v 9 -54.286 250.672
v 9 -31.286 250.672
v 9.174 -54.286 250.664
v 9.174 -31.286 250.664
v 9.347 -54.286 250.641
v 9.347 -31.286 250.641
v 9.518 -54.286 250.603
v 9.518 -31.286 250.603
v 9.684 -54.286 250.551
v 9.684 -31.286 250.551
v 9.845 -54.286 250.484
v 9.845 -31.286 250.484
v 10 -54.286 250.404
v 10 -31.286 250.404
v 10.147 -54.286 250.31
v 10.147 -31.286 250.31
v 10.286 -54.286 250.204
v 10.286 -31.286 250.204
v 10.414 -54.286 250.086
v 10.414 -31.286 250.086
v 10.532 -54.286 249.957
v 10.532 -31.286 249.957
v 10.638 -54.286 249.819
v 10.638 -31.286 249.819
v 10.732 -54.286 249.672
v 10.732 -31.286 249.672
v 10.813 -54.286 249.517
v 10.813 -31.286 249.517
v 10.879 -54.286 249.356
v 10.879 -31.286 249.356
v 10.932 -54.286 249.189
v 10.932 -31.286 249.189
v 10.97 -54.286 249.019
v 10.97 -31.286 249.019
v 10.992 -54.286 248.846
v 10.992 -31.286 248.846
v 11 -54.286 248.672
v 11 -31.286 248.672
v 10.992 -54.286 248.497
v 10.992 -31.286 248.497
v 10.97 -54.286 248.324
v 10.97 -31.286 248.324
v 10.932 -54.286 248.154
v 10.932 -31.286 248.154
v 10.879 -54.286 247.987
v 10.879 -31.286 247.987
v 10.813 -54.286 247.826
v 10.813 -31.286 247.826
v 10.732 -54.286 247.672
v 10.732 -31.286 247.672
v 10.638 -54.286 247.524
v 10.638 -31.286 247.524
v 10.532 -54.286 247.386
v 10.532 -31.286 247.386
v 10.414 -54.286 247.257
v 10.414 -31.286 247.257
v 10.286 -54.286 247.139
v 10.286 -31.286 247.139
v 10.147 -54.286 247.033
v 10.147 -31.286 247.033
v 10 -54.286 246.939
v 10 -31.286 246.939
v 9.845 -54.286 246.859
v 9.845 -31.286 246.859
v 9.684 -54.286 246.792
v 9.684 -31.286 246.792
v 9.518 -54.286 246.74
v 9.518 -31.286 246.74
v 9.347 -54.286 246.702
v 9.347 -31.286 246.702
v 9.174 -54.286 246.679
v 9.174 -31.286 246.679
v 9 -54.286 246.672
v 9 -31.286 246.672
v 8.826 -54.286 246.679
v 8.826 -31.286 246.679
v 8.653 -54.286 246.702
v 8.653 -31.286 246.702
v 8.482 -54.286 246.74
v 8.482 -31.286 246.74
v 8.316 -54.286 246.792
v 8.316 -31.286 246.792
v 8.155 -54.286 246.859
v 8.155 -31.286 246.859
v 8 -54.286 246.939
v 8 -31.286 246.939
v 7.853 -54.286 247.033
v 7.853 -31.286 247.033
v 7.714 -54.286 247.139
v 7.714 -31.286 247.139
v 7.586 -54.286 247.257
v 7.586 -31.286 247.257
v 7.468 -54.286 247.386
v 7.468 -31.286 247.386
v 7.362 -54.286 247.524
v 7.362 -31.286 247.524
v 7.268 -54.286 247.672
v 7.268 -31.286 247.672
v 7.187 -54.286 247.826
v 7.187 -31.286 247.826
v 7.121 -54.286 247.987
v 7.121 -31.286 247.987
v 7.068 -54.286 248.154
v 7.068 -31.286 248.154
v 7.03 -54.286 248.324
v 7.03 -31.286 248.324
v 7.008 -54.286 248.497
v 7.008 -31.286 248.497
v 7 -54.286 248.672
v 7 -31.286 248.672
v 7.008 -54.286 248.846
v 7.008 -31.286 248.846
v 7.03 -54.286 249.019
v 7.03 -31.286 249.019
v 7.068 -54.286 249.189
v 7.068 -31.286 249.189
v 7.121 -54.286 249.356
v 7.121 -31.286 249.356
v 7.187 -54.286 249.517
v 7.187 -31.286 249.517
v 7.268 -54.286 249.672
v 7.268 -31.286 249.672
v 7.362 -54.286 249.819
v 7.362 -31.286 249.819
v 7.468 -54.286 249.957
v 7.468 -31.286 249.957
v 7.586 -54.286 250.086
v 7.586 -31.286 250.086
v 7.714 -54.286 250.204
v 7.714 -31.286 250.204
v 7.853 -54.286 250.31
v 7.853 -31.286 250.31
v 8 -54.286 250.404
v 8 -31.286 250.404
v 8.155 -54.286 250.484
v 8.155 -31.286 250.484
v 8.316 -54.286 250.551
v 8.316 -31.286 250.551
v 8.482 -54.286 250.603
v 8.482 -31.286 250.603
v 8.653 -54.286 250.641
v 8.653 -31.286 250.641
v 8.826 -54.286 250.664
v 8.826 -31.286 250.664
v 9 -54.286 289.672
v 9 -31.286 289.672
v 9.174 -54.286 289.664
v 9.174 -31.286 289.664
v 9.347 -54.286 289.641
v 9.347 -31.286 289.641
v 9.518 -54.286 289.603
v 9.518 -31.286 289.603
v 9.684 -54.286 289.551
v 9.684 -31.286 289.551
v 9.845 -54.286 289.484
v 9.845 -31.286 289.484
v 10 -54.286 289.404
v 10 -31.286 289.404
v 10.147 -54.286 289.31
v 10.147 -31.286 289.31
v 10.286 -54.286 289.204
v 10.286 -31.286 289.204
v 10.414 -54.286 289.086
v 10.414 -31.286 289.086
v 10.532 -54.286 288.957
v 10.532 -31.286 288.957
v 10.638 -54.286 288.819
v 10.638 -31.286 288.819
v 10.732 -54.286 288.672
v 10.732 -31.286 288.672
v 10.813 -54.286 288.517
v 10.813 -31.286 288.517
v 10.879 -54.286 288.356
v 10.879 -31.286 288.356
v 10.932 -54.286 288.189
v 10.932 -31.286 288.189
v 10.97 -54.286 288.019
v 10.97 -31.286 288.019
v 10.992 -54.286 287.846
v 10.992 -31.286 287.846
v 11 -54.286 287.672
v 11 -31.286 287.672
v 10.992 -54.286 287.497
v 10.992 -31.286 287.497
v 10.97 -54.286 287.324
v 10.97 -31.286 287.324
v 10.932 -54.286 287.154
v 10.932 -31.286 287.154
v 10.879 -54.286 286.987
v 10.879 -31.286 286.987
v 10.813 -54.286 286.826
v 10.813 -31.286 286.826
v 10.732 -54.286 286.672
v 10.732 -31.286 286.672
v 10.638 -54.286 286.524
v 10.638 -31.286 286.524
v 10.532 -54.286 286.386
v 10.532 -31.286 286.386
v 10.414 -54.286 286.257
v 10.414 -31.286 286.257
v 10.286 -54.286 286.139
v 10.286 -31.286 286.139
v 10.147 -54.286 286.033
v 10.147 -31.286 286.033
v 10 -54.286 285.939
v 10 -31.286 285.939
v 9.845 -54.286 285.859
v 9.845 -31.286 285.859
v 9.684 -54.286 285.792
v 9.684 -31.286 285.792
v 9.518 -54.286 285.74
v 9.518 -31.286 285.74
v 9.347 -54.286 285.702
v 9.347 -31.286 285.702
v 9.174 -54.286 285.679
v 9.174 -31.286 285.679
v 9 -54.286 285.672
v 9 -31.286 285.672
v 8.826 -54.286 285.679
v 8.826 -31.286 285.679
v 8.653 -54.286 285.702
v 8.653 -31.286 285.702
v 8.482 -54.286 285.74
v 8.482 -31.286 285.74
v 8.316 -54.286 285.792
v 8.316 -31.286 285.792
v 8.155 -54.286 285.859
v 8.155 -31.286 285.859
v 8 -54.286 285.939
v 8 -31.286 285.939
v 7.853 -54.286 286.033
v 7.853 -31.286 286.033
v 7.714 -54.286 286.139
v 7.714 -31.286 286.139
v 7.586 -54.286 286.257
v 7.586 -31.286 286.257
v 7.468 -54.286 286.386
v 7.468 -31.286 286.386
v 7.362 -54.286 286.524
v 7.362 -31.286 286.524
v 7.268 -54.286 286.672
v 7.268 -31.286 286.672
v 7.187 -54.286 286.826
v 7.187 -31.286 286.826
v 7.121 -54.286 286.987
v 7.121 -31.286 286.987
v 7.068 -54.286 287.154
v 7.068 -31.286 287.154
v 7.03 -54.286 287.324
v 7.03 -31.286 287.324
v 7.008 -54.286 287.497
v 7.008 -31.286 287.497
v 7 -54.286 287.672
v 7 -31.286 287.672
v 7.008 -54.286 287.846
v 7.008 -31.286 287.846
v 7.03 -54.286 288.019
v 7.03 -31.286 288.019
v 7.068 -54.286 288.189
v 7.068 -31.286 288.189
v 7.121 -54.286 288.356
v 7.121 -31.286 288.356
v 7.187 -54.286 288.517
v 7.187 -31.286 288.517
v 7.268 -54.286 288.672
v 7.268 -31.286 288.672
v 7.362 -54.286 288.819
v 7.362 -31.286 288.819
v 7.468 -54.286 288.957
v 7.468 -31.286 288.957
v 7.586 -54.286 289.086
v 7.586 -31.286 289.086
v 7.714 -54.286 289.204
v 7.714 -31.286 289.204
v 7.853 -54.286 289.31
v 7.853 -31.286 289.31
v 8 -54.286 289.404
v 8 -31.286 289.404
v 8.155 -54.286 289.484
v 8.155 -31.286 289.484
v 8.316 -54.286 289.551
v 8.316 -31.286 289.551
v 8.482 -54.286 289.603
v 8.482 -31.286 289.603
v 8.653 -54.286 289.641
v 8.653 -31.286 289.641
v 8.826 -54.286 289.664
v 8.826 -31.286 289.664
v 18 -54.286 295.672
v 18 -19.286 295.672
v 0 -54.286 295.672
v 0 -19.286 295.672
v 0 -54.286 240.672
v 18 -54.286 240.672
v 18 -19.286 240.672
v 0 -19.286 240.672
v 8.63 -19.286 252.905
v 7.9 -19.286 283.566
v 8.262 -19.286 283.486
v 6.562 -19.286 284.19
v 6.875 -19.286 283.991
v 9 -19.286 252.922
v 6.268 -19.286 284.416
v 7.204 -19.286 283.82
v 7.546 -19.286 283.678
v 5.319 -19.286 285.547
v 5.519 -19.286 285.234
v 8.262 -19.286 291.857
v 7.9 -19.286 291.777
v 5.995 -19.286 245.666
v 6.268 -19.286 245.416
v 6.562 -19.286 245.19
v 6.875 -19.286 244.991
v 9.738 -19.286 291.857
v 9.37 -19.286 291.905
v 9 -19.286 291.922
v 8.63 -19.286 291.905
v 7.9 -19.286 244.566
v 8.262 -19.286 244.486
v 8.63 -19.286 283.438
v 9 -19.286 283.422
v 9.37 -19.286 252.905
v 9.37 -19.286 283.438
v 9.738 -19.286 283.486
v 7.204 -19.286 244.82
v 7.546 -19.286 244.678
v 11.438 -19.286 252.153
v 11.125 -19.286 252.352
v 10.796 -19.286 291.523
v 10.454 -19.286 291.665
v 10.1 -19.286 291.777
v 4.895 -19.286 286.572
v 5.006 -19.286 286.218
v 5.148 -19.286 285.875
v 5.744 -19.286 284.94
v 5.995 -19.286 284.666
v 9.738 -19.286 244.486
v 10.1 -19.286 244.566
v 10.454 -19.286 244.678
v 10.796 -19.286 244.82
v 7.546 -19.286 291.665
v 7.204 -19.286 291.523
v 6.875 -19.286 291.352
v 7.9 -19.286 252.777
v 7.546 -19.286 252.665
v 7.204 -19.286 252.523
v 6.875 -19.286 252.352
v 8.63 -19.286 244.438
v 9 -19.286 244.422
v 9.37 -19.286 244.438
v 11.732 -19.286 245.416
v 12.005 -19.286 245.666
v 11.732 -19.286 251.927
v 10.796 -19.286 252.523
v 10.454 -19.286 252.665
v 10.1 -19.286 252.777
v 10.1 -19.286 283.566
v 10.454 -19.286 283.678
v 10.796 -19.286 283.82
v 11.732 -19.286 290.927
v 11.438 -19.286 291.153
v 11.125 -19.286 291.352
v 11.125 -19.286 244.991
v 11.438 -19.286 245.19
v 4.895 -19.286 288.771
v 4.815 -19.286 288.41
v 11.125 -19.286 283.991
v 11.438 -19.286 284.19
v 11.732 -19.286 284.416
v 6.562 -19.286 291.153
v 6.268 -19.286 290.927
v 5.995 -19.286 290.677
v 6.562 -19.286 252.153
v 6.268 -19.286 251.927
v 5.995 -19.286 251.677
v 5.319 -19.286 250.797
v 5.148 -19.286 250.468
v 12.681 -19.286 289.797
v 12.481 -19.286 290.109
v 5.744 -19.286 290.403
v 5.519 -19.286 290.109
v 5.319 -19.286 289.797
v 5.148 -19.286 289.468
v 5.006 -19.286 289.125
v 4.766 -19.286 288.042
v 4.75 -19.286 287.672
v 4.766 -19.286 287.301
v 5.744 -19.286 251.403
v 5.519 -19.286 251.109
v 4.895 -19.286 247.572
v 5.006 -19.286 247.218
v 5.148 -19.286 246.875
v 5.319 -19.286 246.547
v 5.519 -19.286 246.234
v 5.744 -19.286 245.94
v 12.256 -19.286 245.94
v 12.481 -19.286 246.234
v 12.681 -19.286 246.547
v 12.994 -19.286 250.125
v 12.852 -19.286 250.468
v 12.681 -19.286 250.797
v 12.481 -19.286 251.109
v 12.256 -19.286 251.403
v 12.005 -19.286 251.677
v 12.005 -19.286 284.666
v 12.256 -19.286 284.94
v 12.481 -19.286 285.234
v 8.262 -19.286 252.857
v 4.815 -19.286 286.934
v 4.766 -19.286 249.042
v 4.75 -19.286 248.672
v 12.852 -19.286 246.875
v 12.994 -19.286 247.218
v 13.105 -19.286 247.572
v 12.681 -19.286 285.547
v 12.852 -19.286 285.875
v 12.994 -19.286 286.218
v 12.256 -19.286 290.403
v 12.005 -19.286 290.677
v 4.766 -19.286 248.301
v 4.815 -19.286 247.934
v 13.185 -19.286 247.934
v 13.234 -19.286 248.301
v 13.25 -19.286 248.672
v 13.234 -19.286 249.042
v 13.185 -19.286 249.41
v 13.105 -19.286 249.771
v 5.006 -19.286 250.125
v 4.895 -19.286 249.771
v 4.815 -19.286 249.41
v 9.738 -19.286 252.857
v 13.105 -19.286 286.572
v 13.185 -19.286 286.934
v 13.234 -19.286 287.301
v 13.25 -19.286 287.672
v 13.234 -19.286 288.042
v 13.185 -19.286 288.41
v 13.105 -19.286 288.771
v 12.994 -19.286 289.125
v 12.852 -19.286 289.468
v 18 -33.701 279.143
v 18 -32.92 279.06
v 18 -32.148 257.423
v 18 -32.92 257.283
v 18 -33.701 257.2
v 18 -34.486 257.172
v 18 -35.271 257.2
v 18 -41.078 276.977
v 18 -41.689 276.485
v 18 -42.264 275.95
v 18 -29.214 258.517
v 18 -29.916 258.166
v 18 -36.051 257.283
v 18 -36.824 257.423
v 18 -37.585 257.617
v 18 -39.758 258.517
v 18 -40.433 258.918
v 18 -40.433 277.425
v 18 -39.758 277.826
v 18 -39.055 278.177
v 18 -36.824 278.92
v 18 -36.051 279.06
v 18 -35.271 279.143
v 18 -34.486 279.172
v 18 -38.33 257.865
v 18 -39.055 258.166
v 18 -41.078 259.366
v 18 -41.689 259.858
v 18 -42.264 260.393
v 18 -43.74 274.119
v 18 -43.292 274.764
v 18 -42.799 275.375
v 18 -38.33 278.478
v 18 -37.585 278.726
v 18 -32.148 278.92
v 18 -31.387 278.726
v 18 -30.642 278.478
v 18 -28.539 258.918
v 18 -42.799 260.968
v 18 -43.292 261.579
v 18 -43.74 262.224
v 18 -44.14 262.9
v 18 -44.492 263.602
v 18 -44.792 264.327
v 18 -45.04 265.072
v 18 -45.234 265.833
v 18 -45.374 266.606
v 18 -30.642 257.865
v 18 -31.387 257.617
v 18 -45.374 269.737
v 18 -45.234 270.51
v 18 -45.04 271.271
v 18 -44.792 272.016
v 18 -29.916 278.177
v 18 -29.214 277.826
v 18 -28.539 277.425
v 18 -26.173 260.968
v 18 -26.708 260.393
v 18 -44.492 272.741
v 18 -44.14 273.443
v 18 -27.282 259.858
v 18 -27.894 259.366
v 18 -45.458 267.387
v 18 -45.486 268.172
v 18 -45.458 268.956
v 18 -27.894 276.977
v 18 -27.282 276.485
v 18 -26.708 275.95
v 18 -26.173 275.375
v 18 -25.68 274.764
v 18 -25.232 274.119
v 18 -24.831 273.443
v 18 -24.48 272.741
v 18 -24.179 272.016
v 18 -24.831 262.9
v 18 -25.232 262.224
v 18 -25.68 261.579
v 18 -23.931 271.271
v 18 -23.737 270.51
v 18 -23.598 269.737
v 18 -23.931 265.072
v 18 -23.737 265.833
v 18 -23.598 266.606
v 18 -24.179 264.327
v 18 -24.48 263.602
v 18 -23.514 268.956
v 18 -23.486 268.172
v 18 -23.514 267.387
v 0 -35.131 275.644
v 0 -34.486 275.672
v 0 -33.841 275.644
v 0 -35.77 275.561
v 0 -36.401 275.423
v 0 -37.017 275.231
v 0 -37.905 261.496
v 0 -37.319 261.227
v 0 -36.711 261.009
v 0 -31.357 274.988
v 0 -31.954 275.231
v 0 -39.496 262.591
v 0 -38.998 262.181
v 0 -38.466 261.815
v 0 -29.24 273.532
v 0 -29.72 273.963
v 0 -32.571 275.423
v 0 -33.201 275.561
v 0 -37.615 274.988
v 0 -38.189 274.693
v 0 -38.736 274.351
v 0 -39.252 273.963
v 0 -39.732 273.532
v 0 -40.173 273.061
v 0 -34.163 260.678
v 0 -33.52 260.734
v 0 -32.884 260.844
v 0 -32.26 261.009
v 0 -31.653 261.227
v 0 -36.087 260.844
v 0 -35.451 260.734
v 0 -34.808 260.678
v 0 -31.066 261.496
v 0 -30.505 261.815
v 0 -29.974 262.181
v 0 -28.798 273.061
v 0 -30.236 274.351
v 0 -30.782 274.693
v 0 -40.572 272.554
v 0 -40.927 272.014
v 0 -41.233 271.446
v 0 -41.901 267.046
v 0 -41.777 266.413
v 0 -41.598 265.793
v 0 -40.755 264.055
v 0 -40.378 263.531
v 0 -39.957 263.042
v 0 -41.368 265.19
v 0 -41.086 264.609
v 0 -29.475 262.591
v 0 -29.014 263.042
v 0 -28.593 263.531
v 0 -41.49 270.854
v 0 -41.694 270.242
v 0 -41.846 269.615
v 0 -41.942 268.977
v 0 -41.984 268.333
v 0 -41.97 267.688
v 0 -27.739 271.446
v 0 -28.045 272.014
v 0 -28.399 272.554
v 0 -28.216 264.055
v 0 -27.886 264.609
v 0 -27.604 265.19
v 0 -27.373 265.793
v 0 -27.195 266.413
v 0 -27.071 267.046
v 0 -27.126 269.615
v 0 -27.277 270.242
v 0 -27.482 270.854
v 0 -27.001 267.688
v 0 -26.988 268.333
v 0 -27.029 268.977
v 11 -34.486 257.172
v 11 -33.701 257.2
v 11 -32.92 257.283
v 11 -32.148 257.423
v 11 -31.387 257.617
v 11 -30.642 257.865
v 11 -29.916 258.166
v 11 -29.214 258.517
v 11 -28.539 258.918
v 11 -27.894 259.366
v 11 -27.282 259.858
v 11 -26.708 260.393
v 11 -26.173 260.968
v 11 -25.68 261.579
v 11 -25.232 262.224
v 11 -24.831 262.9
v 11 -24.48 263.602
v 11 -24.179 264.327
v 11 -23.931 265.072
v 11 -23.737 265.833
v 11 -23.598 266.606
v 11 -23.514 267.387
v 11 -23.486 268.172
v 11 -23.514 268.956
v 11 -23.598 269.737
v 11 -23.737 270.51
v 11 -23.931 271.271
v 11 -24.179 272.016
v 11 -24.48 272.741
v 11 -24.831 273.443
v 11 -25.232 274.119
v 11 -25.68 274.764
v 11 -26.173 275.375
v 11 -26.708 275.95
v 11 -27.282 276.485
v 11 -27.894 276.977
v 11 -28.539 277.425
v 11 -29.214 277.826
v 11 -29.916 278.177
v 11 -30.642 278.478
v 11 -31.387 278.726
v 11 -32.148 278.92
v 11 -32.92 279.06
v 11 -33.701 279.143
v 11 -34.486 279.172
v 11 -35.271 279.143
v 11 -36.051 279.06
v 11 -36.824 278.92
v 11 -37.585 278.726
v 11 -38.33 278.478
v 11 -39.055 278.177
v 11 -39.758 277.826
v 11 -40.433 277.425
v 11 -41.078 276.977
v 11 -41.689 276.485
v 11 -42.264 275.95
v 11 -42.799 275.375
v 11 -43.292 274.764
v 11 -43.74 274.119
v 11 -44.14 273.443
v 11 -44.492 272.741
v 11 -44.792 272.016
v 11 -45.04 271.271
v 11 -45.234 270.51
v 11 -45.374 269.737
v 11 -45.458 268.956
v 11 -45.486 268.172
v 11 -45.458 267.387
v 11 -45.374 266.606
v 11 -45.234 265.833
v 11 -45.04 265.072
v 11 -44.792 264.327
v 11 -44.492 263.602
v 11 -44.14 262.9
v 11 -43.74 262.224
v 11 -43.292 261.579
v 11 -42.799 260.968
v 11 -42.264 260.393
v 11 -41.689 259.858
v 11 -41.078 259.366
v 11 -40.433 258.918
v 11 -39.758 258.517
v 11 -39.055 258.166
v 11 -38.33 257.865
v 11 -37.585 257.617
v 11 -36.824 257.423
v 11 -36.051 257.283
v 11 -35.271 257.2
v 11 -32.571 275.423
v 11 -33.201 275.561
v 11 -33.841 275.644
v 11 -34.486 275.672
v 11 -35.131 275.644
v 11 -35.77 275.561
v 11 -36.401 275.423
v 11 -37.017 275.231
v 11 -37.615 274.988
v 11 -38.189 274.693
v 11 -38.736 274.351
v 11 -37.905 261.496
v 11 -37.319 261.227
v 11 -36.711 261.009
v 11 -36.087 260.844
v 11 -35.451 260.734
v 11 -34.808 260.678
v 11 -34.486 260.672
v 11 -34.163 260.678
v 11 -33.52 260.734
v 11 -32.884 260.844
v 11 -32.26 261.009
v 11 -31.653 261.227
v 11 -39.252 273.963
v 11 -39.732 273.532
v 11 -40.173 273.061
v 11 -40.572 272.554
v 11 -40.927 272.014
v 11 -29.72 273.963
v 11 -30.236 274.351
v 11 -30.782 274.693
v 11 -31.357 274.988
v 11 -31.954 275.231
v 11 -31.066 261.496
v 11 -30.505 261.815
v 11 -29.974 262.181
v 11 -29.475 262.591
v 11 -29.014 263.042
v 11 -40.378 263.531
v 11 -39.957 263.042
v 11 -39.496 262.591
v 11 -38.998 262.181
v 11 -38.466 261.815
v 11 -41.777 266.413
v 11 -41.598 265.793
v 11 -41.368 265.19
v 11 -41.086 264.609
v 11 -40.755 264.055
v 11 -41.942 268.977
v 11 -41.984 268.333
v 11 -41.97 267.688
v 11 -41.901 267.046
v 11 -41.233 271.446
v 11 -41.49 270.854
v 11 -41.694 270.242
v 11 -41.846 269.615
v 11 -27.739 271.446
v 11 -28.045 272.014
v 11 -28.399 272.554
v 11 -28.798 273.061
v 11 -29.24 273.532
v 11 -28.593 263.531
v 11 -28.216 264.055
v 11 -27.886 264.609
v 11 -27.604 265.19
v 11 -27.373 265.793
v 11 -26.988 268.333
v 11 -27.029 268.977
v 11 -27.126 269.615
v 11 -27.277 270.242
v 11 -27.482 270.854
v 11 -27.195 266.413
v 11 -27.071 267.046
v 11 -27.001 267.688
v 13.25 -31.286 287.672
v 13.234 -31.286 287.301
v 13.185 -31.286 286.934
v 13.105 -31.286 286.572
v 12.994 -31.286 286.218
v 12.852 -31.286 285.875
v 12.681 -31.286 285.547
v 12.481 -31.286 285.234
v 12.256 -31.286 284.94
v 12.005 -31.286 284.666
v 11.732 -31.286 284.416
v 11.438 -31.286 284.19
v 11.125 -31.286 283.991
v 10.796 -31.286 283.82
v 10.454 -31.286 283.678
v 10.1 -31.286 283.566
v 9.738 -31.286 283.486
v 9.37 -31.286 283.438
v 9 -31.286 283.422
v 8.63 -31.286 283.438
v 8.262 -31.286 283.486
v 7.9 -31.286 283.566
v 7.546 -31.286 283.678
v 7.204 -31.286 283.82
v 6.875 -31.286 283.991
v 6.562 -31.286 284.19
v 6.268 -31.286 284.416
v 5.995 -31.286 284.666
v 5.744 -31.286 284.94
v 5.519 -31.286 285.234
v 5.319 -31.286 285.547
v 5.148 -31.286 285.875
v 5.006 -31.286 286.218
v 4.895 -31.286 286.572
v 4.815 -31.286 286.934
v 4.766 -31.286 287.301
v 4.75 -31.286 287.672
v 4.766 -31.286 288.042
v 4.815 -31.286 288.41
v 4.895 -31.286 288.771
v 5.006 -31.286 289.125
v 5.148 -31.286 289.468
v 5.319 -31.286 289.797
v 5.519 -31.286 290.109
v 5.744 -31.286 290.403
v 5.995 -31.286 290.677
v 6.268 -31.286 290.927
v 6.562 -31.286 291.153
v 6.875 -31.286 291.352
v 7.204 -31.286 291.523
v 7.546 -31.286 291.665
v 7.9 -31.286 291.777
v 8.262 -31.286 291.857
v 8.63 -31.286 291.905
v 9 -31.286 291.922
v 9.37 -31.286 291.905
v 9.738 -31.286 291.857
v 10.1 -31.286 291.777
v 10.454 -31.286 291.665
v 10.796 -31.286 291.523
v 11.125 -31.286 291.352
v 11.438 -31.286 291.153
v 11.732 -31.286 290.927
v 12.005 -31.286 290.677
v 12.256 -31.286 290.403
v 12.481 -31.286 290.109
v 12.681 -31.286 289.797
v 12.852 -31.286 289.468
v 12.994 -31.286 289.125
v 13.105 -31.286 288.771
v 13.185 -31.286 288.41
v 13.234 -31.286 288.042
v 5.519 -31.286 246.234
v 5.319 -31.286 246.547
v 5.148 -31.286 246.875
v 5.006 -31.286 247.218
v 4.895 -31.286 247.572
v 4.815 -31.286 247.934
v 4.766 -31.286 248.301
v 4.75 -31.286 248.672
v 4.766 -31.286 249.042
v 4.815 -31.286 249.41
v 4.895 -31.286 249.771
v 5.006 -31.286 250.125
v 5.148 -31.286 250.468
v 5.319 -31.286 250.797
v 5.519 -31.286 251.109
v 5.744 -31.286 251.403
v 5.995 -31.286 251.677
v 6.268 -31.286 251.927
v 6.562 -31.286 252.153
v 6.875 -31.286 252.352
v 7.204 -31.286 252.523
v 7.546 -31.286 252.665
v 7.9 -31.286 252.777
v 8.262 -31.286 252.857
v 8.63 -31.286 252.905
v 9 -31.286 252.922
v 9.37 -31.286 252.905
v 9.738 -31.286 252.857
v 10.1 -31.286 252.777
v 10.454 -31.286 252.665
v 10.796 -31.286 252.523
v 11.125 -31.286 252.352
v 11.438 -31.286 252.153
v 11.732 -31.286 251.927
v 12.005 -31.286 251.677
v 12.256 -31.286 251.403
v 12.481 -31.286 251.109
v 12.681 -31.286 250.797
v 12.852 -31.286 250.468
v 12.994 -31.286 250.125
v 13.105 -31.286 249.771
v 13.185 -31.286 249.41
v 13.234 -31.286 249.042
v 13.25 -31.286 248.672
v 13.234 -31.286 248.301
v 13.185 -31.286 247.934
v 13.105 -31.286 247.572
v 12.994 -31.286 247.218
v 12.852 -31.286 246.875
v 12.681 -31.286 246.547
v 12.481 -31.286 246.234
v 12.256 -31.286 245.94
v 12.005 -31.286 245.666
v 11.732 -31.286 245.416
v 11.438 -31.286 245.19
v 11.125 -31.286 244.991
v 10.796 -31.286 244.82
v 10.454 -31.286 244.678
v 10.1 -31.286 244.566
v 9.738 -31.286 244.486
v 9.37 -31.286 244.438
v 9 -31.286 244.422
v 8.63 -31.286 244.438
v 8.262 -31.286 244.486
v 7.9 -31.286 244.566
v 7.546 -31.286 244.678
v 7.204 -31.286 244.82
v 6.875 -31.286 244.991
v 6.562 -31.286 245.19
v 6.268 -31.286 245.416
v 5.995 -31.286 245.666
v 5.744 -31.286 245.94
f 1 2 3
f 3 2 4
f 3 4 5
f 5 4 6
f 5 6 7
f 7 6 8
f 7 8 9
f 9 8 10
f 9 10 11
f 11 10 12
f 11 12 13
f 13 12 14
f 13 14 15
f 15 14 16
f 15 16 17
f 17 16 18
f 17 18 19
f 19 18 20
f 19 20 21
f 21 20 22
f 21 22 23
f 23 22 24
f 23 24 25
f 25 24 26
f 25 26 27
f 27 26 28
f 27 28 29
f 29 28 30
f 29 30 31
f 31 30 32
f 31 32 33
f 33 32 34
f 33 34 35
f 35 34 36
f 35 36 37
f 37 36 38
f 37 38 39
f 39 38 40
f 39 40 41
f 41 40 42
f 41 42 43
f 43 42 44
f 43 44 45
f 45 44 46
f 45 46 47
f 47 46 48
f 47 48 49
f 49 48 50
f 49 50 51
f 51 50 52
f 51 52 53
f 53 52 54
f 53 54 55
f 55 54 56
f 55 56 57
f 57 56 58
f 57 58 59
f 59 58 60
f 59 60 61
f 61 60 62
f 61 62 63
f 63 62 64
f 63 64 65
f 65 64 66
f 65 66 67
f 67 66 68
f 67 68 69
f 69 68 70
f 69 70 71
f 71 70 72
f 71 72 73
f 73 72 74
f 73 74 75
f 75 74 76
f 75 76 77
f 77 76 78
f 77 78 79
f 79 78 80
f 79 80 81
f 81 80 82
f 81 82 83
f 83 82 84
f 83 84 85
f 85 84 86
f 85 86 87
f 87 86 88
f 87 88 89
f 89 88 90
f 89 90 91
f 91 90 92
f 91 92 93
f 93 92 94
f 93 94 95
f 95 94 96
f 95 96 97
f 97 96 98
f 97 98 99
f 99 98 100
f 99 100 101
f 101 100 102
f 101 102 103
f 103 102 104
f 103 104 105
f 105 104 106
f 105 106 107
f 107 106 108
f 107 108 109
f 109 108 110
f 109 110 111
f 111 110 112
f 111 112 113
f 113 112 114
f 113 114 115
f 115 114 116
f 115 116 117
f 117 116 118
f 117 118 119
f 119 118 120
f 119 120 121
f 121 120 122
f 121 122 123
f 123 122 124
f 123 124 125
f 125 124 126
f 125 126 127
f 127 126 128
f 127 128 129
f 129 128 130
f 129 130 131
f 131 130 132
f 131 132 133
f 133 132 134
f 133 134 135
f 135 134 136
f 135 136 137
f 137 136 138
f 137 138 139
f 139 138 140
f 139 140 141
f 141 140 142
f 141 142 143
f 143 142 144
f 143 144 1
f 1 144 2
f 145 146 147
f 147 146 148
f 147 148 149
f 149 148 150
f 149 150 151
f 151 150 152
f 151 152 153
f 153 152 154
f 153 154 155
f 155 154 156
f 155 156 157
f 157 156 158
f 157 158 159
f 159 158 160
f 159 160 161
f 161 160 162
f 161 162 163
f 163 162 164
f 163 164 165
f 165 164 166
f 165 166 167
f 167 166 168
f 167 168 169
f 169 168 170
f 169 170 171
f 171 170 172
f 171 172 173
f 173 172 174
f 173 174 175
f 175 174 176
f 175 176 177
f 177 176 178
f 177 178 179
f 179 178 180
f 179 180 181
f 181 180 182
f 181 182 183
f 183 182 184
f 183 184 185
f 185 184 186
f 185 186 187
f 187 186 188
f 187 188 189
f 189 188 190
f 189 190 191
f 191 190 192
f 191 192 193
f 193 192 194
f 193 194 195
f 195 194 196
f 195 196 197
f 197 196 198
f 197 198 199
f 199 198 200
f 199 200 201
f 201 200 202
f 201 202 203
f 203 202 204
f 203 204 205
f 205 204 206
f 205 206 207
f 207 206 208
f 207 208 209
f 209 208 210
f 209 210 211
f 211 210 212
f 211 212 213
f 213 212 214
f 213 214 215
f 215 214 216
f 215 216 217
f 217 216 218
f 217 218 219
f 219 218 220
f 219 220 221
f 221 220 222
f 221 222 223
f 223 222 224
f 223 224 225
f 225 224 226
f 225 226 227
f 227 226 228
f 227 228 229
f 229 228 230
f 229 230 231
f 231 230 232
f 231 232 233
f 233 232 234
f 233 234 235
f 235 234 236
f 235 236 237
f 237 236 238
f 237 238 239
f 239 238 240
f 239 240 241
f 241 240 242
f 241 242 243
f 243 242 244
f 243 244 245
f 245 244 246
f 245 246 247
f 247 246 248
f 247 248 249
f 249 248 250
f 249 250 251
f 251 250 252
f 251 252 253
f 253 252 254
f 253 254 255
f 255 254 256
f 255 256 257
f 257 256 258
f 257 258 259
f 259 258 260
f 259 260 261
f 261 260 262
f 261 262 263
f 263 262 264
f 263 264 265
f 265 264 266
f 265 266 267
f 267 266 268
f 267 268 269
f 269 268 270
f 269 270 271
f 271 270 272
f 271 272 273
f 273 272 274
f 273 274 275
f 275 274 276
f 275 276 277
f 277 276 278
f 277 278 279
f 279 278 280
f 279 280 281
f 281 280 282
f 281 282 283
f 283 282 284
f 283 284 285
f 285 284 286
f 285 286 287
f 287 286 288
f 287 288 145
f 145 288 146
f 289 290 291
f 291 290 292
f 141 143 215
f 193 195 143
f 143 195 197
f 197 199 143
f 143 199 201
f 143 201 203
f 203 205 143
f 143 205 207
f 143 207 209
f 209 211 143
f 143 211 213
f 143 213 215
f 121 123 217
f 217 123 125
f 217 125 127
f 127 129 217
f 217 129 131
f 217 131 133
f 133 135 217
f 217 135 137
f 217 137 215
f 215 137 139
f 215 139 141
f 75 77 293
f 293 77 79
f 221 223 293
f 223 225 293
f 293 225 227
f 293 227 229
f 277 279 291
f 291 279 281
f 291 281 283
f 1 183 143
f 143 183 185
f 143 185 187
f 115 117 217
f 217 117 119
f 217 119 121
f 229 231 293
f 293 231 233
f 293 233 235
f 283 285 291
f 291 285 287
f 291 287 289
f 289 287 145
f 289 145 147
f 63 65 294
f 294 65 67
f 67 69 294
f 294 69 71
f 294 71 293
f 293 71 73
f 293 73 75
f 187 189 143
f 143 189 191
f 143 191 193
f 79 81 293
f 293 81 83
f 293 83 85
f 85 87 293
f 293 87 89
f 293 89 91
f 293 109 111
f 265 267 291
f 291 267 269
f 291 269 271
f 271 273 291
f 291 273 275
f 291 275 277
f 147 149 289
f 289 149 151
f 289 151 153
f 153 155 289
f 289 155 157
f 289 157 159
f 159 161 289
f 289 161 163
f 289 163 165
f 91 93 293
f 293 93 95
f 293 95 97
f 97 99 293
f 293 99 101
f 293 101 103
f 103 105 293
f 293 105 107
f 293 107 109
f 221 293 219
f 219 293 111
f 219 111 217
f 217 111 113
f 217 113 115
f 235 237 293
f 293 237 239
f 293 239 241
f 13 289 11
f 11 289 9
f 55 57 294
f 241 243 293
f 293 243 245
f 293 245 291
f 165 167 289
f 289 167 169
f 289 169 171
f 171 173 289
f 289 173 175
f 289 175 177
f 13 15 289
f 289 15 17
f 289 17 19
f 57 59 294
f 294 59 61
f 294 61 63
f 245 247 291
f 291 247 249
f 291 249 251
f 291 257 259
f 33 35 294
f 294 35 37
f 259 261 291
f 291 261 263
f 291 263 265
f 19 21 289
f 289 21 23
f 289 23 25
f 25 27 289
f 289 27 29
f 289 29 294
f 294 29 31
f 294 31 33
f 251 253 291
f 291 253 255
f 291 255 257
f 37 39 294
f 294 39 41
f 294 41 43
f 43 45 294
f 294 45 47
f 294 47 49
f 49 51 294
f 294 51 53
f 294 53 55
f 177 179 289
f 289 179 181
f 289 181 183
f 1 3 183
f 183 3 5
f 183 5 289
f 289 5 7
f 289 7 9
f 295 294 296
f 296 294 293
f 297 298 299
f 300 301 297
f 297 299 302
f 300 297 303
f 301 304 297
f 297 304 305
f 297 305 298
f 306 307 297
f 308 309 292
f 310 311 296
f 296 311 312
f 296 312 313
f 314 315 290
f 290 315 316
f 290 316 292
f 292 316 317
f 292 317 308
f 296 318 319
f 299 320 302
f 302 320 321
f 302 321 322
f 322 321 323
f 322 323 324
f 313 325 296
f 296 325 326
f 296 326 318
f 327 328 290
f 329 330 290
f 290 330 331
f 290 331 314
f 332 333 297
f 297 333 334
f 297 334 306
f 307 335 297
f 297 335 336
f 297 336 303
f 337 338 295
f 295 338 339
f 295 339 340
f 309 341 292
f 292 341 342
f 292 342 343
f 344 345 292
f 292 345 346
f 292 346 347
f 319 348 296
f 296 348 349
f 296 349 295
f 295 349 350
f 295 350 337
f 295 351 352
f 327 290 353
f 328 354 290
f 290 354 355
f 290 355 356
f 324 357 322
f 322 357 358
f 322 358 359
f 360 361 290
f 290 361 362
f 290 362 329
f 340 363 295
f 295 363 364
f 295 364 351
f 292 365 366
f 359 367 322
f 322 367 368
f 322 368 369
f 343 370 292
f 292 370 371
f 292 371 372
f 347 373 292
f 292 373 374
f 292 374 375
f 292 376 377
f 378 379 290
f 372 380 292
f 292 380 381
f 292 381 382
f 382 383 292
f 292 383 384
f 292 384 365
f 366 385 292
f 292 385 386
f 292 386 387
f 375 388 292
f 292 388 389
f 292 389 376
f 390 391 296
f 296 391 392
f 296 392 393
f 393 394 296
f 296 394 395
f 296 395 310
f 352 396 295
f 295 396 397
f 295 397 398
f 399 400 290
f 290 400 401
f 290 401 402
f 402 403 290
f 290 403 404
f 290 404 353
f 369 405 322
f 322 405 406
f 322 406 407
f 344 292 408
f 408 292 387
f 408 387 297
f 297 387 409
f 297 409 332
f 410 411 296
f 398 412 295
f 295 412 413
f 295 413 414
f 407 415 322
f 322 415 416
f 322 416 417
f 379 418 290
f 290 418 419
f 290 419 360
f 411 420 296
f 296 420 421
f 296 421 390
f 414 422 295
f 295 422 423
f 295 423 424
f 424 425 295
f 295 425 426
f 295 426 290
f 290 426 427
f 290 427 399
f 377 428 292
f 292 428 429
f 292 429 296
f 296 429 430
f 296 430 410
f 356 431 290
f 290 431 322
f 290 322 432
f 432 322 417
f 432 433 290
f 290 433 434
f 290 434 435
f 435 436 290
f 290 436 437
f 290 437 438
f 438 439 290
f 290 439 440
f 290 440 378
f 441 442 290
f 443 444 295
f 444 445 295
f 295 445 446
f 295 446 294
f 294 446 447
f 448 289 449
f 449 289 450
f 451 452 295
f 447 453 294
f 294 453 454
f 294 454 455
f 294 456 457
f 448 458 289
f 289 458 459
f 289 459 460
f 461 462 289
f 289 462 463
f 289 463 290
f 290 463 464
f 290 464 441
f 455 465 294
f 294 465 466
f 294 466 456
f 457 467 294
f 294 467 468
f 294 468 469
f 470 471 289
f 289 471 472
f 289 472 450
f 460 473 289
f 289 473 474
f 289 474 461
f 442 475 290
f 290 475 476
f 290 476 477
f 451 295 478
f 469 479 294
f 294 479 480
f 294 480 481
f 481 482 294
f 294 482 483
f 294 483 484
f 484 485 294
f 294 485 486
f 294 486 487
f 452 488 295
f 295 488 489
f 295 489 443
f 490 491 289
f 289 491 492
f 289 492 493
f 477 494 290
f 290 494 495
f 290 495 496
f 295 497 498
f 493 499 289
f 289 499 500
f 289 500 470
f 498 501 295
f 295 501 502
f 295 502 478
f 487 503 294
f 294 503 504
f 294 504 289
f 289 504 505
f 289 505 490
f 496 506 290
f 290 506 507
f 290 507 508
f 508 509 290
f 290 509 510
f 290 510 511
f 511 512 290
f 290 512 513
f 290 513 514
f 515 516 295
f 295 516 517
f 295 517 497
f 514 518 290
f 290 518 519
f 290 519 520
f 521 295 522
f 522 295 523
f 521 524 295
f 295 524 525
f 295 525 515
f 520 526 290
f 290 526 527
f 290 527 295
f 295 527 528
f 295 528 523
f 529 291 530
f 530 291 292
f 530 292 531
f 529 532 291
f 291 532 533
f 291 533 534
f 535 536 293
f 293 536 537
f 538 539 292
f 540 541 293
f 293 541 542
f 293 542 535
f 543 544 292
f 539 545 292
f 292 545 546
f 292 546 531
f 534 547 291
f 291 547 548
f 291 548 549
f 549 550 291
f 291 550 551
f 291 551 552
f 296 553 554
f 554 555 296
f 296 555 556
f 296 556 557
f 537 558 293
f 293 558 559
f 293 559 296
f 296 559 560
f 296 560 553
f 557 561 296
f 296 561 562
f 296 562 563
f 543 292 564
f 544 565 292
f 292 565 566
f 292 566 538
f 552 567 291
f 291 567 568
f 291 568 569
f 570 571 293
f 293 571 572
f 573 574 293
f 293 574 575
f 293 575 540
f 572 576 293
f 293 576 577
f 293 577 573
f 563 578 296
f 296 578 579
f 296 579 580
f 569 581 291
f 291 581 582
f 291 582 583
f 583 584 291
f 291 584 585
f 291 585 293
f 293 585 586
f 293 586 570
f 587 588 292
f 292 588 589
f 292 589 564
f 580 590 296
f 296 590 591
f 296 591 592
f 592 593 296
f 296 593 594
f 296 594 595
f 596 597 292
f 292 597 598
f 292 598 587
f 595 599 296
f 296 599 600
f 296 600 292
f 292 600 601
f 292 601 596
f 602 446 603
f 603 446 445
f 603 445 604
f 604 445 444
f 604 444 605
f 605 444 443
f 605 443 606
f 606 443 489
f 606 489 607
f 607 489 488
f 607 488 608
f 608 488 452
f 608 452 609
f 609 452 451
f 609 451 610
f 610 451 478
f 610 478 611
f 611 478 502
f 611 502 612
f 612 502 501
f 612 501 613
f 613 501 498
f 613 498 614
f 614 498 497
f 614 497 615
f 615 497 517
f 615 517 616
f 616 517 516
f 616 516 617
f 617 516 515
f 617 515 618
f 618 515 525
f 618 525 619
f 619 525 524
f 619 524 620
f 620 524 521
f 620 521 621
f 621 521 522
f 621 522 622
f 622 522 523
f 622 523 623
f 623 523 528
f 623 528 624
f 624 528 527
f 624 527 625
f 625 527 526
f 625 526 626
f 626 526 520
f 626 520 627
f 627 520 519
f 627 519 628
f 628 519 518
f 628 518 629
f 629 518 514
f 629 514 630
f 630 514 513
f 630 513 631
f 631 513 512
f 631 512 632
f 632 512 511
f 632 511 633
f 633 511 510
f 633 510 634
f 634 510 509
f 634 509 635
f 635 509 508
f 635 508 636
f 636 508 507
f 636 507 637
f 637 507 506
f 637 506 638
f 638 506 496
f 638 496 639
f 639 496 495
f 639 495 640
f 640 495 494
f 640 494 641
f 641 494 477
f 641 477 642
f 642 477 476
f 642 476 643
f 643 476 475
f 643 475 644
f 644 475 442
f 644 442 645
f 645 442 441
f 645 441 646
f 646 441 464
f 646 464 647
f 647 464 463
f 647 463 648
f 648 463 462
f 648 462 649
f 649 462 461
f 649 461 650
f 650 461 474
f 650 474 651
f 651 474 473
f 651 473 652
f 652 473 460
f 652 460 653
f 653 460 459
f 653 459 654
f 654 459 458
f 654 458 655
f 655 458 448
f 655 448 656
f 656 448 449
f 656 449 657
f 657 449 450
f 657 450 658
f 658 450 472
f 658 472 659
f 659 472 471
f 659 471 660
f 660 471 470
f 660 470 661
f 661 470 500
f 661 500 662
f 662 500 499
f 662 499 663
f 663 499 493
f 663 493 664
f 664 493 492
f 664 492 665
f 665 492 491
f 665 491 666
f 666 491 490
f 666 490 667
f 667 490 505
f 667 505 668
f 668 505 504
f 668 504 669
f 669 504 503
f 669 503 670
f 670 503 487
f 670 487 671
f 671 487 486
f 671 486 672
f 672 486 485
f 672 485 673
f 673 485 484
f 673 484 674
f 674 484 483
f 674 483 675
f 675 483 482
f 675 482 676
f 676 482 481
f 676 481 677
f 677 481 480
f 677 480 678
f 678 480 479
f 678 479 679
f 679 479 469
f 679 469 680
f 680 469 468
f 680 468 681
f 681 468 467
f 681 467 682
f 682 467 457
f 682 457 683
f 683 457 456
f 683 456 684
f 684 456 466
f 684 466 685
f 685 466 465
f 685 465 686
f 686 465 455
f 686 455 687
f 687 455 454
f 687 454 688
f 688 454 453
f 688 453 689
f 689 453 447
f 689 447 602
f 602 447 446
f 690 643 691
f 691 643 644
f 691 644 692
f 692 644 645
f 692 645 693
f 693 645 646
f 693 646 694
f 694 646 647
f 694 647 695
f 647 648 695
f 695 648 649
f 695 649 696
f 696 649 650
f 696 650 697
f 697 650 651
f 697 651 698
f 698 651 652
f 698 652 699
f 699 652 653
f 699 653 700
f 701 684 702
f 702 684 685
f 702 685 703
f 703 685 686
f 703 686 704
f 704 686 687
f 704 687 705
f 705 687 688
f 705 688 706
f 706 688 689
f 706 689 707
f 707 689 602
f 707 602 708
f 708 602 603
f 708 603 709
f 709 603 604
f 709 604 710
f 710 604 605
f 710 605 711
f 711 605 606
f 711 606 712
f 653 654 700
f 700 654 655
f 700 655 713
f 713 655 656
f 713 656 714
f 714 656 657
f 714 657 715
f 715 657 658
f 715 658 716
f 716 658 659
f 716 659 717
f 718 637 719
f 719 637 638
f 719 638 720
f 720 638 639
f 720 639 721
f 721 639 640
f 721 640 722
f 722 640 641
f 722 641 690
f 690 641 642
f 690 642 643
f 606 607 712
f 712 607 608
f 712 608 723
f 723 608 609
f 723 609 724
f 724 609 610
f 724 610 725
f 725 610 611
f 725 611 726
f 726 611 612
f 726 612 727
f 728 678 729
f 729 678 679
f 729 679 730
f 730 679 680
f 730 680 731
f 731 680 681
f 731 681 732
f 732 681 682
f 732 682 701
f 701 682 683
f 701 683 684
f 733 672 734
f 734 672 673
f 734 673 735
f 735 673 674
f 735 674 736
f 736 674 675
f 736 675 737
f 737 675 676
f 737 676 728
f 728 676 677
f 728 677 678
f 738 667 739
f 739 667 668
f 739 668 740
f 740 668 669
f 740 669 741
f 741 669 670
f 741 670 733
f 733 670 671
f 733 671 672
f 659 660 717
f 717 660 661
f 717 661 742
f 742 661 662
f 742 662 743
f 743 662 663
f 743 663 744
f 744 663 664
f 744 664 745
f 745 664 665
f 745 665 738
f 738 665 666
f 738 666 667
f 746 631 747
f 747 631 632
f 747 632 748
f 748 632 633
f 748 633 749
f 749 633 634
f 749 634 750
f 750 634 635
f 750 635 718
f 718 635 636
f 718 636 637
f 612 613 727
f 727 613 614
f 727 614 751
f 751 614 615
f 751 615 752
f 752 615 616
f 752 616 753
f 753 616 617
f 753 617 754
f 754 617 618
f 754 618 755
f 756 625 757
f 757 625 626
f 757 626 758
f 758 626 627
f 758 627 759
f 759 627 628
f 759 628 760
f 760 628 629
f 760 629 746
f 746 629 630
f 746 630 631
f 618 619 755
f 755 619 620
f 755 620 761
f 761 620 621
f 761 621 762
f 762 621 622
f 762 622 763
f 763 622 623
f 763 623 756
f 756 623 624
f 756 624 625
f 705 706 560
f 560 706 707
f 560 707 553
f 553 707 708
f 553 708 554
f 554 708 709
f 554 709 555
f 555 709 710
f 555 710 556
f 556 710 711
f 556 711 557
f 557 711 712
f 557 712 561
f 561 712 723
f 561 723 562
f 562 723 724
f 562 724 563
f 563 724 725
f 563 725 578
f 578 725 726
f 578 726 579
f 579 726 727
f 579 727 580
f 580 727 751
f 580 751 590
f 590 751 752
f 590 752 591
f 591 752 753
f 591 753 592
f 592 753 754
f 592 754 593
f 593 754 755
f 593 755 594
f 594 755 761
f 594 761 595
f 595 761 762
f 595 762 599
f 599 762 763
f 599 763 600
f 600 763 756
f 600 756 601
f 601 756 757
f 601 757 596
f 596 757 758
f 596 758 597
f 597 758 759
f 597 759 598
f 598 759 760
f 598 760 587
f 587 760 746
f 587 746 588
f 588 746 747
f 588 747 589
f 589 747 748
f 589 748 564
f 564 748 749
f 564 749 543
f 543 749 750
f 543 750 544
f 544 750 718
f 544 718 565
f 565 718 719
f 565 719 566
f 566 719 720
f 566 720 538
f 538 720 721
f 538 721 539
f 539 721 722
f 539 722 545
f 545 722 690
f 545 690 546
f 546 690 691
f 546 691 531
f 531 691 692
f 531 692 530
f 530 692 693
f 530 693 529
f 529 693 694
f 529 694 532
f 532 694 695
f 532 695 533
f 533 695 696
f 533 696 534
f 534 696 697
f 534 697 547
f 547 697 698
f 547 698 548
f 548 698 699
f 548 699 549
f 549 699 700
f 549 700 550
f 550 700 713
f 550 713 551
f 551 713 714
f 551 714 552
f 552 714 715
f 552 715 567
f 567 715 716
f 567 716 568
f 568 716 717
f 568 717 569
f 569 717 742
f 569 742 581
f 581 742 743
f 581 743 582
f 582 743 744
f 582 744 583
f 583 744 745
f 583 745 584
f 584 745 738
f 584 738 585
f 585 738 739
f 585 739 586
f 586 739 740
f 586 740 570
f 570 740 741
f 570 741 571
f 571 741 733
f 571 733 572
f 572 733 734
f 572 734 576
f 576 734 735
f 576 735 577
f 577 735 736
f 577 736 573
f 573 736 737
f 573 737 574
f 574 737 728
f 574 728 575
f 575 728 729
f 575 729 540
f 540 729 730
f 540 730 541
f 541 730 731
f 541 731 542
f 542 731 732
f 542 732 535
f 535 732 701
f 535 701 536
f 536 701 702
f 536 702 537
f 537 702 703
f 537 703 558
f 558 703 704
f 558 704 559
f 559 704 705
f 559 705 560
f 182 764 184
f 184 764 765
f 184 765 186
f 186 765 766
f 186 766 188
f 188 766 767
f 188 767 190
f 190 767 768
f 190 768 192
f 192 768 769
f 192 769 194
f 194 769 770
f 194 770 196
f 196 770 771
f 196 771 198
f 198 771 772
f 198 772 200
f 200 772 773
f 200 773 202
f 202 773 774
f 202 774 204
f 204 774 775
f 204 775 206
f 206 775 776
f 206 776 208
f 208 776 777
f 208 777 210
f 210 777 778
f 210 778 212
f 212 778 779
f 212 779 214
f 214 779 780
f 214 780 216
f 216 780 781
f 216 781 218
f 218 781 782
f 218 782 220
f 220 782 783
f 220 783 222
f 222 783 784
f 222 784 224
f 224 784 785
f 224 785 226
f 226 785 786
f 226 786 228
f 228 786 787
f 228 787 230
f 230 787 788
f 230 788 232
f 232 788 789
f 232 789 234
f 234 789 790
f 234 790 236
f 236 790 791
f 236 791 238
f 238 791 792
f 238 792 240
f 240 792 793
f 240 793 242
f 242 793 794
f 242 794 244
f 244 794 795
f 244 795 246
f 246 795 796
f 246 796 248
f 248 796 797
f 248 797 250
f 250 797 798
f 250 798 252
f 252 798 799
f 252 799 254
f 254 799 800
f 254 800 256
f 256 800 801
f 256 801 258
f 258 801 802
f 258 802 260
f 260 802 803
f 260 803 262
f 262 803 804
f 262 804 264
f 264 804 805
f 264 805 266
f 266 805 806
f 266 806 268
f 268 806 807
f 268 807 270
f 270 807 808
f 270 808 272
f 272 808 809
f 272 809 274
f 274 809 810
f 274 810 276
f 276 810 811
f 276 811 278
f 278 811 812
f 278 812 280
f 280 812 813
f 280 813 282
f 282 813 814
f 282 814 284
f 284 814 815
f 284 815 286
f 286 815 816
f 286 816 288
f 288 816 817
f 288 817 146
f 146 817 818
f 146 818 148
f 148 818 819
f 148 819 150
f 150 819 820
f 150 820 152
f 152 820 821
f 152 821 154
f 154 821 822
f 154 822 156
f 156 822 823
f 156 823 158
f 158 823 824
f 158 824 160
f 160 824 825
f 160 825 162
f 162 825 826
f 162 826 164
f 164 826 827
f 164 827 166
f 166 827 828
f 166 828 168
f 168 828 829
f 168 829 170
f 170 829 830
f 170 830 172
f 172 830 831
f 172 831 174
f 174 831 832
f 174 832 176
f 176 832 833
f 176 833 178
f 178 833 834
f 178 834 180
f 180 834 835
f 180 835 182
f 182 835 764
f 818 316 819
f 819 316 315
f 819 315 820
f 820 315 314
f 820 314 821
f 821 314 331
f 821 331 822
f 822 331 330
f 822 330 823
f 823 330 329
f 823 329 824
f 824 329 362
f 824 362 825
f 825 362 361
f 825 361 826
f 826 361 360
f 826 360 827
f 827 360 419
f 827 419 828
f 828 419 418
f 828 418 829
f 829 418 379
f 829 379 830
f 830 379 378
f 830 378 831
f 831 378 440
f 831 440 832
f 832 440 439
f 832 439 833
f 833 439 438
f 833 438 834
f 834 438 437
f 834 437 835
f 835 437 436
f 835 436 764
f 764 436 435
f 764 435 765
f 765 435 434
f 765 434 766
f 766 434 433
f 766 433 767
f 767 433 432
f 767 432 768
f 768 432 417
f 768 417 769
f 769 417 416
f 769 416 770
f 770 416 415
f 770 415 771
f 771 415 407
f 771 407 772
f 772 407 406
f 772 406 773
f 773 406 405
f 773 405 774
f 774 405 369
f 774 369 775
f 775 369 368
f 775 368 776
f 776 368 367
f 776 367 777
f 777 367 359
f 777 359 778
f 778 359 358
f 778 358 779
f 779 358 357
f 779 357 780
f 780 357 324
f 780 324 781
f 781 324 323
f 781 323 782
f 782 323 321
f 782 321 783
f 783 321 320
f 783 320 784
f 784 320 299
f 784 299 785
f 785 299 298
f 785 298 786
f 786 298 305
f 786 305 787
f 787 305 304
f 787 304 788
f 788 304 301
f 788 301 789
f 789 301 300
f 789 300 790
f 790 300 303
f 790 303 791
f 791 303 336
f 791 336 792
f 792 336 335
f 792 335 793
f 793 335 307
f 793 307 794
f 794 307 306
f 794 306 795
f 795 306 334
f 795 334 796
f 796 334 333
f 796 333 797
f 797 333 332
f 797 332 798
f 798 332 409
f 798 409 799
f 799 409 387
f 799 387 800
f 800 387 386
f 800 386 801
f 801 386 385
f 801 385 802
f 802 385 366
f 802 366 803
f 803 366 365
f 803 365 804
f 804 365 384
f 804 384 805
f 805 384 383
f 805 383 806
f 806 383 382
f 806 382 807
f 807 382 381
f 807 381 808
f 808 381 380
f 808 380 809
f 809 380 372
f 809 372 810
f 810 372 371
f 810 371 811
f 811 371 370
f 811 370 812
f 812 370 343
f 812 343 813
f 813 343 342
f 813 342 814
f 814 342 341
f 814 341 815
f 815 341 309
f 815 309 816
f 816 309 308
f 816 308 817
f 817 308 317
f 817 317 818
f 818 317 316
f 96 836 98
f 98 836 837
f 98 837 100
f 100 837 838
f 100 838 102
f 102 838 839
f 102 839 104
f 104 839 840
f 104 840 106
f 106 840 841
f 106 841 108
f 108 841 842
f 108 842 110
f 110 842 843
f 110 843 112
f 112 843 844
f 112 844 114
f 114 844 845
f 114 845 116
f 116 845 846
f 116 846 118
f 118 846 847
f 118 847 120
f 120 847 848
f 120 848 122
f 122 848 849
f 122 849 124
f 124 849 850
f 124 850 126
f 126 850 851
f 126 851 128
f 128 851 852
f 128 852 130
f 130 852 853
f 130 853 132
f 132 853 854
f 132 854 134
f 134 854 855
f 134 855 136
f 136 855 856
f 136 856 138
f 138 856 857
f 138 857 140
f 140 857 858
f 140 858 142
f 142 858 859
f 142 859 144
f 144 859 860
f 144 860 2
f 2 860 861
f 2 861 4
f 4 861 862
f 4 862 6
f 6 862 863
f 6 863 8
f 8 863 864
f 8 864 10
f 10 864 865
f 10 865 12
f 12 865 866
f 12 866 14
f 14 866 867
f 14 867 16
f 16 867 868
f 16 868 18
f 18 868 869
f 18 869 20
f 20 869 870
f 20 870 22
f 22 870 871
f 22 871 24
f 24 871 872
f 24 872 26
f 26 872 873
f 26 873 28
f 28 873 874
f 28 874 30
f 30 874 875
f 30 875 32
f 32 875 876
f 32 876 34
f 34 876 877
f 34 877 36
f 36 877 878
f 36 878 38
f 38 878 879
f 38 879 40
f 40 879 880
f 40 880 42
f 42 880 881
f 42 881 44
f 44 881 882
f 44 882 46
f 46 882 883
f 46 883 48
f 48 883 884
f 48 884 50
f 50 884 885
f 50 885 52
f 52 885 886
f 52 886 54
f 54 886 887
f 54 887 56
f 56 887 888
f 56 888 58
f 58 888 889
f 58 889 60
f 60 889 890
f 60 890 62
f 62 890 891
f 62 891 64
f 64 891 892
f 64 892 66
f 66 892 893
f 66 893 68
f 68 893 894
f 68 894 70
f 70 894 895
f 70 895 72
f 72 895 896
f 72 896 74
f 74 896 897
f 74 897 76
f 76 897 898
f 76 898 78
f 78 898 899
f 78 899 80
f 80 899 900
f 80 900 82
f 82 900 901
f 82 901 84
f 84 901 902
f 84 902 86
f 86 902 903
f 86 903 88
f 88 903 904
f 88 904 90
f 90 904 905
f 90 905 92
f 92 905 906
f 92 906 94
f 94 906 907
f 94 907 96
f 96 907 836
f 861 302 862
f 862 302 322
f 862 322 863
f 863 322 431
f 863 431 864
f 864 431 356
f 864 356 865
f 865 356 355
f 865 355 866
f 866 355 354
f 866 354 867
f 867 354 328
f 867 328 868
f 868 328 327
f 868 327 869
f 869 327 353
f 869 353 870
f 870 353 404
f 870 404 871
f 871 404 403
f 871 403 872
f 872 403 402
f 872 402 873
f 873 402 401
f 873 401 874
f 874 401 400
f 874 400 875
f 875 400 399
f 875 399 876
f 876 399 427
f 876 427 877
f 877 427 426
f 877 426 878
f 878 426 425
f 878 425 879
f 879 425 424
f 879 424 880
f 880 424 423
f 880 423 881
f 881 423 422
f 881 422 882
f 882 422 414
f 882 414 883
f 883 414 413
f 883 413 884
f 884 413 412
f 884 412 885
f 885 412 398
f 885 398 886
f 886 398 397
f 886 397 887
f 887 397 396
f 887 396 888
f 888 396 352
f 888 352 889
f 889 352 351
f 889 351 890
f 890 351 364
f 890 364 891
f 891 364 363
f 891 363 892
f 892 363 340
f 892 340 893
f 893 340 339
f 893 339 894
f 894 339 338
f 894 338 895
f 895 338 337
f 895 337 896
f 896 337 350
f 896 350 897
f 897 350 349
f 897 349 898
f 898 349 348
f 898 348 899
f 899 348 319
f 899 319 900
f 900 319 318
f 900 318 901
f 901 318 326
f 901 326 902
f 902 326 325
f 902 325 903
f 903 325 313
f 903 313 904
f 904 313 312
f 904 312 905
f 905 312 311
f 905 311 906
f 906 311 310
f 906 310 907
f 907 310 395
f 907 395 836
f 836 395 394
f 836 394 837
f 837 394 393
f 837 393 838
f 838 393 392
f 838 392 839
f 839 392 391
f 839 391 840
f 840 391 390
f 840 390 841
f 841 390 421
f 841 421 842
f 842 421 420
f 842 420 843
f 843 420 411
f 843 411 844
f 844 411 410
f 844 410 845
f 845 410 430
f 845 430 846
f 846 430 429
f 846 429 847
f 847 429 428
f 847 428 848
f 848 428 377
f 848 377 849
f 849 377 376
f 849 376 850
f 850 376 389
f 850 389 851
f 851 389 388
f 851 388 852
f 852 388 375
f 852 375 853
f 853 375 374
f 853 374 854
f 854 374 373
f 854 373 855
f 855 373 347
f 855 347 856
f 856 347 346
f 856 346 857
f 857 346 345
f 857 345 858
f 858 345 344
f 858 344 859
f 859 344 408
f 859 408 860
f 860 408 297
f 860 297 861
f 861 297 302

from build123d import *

# Parameters (mm, degrees)
ESQUISSE1_W             = 55
ESQUISSE1_H             = 35
BOSS_EXTRU_1_DEPTH      = 18
ESQUISSE2_R             = 11
ENL_V_MAT_EXTRU_1_DEPTH = 7
ESQUISSE3_R             = 7.5
ENL_V_MAT_EXTRU_2_DEPTH = 302.152136256
ESQUISSE4_R             = 2
ENL_V_MAT_EXTRU_3_DEPTH = 299.279472876
ESQUISSE5_R             = 4.25
ENL_V_MAT_EXTRU_4_DEPTH = 12


with BuildPart() as part:
    # Esquisse1 → Boss.-Extru.1 (new body)
    with BuildSketch(Plane(origin=(0, 0, 0), x_dir=(0, 0, -1), z_dir=(1, 0, 0))):
        with Locations((-268.171513574, -36.785957969)):
            Rectangle(ESQUISSE1_W, ESQUISSE1_H)
    extrude(amount=BOSS_EXTRU_1_DEPTH)

    # Esquisse2 → Enlèv. mat.-Extru.1 (cut)
    with BuildSketch(Plane(origin=(18, 0, 0), x_dir=(0, 0, -1), z_dir=(1, 0, 0))):
        with Locations((-268.171513574, -34.485781453)):
            Circle(ESQUISSE2_R)
    extrude(amount=-ENL_V_MAT_EXTRU_1_DEPTH, mode=Mode.SUBTRACT)

    # Esquisse3 → Enlèv. mat.-Extru.2 (cut, through all)
    with BuildSketch(Plane.ZY):
        with Locations((268.171513574, -34.485781453)):
            Circle(ESQUISSE3_R)
    extrude(amount=-ENL_V_MAT_EXTRU_2_DEPTH, mode=Mode.SUBTRACT)

    # Esquisse4 → Enlèv. mat.-Extru.3 (cut, through all)
    with BuildSketch(Plane(origin=(0, -19.285957969, 0), x_dir=(1, 0, 0), z_dir=(0, 1, 0))):
        with Locations(Location((9, -287.671513574, 0), (0, 0, 270))):
            Circle(ESQUISSE4_R)
        with Locations(Location((9, -248.671513574, 0), (0, 0, 270))):
            Circle(ESQUISSE4_R)
    extrude(amount=-ENL_V_MAT_EXTRU_3_DEPTH, mode=Mode.SUBTRACT)

    # Esquisse5 → Enlèv. mat.-Extru.4 (cut)
    with BuildSketch(Plane(origin=(0, -19.285957969, 0), x_dir=(1, 0, 0), z_dir=(0, 1, 0))):
        with Locations(Location((9, -287.671513574, 0), (0, 0, 270))):
            Circle(ESQUISSE5_R)
        with Locations(Location((9, -248.671513574, 0), (0, 0, 270))):
            Circle(ESQUISSE5_R)
    extrude(amount=-ENL_V_MAT_EXTRU_4_DEPTH, mode=Mode.SUBTRACT)


solid = part.part
